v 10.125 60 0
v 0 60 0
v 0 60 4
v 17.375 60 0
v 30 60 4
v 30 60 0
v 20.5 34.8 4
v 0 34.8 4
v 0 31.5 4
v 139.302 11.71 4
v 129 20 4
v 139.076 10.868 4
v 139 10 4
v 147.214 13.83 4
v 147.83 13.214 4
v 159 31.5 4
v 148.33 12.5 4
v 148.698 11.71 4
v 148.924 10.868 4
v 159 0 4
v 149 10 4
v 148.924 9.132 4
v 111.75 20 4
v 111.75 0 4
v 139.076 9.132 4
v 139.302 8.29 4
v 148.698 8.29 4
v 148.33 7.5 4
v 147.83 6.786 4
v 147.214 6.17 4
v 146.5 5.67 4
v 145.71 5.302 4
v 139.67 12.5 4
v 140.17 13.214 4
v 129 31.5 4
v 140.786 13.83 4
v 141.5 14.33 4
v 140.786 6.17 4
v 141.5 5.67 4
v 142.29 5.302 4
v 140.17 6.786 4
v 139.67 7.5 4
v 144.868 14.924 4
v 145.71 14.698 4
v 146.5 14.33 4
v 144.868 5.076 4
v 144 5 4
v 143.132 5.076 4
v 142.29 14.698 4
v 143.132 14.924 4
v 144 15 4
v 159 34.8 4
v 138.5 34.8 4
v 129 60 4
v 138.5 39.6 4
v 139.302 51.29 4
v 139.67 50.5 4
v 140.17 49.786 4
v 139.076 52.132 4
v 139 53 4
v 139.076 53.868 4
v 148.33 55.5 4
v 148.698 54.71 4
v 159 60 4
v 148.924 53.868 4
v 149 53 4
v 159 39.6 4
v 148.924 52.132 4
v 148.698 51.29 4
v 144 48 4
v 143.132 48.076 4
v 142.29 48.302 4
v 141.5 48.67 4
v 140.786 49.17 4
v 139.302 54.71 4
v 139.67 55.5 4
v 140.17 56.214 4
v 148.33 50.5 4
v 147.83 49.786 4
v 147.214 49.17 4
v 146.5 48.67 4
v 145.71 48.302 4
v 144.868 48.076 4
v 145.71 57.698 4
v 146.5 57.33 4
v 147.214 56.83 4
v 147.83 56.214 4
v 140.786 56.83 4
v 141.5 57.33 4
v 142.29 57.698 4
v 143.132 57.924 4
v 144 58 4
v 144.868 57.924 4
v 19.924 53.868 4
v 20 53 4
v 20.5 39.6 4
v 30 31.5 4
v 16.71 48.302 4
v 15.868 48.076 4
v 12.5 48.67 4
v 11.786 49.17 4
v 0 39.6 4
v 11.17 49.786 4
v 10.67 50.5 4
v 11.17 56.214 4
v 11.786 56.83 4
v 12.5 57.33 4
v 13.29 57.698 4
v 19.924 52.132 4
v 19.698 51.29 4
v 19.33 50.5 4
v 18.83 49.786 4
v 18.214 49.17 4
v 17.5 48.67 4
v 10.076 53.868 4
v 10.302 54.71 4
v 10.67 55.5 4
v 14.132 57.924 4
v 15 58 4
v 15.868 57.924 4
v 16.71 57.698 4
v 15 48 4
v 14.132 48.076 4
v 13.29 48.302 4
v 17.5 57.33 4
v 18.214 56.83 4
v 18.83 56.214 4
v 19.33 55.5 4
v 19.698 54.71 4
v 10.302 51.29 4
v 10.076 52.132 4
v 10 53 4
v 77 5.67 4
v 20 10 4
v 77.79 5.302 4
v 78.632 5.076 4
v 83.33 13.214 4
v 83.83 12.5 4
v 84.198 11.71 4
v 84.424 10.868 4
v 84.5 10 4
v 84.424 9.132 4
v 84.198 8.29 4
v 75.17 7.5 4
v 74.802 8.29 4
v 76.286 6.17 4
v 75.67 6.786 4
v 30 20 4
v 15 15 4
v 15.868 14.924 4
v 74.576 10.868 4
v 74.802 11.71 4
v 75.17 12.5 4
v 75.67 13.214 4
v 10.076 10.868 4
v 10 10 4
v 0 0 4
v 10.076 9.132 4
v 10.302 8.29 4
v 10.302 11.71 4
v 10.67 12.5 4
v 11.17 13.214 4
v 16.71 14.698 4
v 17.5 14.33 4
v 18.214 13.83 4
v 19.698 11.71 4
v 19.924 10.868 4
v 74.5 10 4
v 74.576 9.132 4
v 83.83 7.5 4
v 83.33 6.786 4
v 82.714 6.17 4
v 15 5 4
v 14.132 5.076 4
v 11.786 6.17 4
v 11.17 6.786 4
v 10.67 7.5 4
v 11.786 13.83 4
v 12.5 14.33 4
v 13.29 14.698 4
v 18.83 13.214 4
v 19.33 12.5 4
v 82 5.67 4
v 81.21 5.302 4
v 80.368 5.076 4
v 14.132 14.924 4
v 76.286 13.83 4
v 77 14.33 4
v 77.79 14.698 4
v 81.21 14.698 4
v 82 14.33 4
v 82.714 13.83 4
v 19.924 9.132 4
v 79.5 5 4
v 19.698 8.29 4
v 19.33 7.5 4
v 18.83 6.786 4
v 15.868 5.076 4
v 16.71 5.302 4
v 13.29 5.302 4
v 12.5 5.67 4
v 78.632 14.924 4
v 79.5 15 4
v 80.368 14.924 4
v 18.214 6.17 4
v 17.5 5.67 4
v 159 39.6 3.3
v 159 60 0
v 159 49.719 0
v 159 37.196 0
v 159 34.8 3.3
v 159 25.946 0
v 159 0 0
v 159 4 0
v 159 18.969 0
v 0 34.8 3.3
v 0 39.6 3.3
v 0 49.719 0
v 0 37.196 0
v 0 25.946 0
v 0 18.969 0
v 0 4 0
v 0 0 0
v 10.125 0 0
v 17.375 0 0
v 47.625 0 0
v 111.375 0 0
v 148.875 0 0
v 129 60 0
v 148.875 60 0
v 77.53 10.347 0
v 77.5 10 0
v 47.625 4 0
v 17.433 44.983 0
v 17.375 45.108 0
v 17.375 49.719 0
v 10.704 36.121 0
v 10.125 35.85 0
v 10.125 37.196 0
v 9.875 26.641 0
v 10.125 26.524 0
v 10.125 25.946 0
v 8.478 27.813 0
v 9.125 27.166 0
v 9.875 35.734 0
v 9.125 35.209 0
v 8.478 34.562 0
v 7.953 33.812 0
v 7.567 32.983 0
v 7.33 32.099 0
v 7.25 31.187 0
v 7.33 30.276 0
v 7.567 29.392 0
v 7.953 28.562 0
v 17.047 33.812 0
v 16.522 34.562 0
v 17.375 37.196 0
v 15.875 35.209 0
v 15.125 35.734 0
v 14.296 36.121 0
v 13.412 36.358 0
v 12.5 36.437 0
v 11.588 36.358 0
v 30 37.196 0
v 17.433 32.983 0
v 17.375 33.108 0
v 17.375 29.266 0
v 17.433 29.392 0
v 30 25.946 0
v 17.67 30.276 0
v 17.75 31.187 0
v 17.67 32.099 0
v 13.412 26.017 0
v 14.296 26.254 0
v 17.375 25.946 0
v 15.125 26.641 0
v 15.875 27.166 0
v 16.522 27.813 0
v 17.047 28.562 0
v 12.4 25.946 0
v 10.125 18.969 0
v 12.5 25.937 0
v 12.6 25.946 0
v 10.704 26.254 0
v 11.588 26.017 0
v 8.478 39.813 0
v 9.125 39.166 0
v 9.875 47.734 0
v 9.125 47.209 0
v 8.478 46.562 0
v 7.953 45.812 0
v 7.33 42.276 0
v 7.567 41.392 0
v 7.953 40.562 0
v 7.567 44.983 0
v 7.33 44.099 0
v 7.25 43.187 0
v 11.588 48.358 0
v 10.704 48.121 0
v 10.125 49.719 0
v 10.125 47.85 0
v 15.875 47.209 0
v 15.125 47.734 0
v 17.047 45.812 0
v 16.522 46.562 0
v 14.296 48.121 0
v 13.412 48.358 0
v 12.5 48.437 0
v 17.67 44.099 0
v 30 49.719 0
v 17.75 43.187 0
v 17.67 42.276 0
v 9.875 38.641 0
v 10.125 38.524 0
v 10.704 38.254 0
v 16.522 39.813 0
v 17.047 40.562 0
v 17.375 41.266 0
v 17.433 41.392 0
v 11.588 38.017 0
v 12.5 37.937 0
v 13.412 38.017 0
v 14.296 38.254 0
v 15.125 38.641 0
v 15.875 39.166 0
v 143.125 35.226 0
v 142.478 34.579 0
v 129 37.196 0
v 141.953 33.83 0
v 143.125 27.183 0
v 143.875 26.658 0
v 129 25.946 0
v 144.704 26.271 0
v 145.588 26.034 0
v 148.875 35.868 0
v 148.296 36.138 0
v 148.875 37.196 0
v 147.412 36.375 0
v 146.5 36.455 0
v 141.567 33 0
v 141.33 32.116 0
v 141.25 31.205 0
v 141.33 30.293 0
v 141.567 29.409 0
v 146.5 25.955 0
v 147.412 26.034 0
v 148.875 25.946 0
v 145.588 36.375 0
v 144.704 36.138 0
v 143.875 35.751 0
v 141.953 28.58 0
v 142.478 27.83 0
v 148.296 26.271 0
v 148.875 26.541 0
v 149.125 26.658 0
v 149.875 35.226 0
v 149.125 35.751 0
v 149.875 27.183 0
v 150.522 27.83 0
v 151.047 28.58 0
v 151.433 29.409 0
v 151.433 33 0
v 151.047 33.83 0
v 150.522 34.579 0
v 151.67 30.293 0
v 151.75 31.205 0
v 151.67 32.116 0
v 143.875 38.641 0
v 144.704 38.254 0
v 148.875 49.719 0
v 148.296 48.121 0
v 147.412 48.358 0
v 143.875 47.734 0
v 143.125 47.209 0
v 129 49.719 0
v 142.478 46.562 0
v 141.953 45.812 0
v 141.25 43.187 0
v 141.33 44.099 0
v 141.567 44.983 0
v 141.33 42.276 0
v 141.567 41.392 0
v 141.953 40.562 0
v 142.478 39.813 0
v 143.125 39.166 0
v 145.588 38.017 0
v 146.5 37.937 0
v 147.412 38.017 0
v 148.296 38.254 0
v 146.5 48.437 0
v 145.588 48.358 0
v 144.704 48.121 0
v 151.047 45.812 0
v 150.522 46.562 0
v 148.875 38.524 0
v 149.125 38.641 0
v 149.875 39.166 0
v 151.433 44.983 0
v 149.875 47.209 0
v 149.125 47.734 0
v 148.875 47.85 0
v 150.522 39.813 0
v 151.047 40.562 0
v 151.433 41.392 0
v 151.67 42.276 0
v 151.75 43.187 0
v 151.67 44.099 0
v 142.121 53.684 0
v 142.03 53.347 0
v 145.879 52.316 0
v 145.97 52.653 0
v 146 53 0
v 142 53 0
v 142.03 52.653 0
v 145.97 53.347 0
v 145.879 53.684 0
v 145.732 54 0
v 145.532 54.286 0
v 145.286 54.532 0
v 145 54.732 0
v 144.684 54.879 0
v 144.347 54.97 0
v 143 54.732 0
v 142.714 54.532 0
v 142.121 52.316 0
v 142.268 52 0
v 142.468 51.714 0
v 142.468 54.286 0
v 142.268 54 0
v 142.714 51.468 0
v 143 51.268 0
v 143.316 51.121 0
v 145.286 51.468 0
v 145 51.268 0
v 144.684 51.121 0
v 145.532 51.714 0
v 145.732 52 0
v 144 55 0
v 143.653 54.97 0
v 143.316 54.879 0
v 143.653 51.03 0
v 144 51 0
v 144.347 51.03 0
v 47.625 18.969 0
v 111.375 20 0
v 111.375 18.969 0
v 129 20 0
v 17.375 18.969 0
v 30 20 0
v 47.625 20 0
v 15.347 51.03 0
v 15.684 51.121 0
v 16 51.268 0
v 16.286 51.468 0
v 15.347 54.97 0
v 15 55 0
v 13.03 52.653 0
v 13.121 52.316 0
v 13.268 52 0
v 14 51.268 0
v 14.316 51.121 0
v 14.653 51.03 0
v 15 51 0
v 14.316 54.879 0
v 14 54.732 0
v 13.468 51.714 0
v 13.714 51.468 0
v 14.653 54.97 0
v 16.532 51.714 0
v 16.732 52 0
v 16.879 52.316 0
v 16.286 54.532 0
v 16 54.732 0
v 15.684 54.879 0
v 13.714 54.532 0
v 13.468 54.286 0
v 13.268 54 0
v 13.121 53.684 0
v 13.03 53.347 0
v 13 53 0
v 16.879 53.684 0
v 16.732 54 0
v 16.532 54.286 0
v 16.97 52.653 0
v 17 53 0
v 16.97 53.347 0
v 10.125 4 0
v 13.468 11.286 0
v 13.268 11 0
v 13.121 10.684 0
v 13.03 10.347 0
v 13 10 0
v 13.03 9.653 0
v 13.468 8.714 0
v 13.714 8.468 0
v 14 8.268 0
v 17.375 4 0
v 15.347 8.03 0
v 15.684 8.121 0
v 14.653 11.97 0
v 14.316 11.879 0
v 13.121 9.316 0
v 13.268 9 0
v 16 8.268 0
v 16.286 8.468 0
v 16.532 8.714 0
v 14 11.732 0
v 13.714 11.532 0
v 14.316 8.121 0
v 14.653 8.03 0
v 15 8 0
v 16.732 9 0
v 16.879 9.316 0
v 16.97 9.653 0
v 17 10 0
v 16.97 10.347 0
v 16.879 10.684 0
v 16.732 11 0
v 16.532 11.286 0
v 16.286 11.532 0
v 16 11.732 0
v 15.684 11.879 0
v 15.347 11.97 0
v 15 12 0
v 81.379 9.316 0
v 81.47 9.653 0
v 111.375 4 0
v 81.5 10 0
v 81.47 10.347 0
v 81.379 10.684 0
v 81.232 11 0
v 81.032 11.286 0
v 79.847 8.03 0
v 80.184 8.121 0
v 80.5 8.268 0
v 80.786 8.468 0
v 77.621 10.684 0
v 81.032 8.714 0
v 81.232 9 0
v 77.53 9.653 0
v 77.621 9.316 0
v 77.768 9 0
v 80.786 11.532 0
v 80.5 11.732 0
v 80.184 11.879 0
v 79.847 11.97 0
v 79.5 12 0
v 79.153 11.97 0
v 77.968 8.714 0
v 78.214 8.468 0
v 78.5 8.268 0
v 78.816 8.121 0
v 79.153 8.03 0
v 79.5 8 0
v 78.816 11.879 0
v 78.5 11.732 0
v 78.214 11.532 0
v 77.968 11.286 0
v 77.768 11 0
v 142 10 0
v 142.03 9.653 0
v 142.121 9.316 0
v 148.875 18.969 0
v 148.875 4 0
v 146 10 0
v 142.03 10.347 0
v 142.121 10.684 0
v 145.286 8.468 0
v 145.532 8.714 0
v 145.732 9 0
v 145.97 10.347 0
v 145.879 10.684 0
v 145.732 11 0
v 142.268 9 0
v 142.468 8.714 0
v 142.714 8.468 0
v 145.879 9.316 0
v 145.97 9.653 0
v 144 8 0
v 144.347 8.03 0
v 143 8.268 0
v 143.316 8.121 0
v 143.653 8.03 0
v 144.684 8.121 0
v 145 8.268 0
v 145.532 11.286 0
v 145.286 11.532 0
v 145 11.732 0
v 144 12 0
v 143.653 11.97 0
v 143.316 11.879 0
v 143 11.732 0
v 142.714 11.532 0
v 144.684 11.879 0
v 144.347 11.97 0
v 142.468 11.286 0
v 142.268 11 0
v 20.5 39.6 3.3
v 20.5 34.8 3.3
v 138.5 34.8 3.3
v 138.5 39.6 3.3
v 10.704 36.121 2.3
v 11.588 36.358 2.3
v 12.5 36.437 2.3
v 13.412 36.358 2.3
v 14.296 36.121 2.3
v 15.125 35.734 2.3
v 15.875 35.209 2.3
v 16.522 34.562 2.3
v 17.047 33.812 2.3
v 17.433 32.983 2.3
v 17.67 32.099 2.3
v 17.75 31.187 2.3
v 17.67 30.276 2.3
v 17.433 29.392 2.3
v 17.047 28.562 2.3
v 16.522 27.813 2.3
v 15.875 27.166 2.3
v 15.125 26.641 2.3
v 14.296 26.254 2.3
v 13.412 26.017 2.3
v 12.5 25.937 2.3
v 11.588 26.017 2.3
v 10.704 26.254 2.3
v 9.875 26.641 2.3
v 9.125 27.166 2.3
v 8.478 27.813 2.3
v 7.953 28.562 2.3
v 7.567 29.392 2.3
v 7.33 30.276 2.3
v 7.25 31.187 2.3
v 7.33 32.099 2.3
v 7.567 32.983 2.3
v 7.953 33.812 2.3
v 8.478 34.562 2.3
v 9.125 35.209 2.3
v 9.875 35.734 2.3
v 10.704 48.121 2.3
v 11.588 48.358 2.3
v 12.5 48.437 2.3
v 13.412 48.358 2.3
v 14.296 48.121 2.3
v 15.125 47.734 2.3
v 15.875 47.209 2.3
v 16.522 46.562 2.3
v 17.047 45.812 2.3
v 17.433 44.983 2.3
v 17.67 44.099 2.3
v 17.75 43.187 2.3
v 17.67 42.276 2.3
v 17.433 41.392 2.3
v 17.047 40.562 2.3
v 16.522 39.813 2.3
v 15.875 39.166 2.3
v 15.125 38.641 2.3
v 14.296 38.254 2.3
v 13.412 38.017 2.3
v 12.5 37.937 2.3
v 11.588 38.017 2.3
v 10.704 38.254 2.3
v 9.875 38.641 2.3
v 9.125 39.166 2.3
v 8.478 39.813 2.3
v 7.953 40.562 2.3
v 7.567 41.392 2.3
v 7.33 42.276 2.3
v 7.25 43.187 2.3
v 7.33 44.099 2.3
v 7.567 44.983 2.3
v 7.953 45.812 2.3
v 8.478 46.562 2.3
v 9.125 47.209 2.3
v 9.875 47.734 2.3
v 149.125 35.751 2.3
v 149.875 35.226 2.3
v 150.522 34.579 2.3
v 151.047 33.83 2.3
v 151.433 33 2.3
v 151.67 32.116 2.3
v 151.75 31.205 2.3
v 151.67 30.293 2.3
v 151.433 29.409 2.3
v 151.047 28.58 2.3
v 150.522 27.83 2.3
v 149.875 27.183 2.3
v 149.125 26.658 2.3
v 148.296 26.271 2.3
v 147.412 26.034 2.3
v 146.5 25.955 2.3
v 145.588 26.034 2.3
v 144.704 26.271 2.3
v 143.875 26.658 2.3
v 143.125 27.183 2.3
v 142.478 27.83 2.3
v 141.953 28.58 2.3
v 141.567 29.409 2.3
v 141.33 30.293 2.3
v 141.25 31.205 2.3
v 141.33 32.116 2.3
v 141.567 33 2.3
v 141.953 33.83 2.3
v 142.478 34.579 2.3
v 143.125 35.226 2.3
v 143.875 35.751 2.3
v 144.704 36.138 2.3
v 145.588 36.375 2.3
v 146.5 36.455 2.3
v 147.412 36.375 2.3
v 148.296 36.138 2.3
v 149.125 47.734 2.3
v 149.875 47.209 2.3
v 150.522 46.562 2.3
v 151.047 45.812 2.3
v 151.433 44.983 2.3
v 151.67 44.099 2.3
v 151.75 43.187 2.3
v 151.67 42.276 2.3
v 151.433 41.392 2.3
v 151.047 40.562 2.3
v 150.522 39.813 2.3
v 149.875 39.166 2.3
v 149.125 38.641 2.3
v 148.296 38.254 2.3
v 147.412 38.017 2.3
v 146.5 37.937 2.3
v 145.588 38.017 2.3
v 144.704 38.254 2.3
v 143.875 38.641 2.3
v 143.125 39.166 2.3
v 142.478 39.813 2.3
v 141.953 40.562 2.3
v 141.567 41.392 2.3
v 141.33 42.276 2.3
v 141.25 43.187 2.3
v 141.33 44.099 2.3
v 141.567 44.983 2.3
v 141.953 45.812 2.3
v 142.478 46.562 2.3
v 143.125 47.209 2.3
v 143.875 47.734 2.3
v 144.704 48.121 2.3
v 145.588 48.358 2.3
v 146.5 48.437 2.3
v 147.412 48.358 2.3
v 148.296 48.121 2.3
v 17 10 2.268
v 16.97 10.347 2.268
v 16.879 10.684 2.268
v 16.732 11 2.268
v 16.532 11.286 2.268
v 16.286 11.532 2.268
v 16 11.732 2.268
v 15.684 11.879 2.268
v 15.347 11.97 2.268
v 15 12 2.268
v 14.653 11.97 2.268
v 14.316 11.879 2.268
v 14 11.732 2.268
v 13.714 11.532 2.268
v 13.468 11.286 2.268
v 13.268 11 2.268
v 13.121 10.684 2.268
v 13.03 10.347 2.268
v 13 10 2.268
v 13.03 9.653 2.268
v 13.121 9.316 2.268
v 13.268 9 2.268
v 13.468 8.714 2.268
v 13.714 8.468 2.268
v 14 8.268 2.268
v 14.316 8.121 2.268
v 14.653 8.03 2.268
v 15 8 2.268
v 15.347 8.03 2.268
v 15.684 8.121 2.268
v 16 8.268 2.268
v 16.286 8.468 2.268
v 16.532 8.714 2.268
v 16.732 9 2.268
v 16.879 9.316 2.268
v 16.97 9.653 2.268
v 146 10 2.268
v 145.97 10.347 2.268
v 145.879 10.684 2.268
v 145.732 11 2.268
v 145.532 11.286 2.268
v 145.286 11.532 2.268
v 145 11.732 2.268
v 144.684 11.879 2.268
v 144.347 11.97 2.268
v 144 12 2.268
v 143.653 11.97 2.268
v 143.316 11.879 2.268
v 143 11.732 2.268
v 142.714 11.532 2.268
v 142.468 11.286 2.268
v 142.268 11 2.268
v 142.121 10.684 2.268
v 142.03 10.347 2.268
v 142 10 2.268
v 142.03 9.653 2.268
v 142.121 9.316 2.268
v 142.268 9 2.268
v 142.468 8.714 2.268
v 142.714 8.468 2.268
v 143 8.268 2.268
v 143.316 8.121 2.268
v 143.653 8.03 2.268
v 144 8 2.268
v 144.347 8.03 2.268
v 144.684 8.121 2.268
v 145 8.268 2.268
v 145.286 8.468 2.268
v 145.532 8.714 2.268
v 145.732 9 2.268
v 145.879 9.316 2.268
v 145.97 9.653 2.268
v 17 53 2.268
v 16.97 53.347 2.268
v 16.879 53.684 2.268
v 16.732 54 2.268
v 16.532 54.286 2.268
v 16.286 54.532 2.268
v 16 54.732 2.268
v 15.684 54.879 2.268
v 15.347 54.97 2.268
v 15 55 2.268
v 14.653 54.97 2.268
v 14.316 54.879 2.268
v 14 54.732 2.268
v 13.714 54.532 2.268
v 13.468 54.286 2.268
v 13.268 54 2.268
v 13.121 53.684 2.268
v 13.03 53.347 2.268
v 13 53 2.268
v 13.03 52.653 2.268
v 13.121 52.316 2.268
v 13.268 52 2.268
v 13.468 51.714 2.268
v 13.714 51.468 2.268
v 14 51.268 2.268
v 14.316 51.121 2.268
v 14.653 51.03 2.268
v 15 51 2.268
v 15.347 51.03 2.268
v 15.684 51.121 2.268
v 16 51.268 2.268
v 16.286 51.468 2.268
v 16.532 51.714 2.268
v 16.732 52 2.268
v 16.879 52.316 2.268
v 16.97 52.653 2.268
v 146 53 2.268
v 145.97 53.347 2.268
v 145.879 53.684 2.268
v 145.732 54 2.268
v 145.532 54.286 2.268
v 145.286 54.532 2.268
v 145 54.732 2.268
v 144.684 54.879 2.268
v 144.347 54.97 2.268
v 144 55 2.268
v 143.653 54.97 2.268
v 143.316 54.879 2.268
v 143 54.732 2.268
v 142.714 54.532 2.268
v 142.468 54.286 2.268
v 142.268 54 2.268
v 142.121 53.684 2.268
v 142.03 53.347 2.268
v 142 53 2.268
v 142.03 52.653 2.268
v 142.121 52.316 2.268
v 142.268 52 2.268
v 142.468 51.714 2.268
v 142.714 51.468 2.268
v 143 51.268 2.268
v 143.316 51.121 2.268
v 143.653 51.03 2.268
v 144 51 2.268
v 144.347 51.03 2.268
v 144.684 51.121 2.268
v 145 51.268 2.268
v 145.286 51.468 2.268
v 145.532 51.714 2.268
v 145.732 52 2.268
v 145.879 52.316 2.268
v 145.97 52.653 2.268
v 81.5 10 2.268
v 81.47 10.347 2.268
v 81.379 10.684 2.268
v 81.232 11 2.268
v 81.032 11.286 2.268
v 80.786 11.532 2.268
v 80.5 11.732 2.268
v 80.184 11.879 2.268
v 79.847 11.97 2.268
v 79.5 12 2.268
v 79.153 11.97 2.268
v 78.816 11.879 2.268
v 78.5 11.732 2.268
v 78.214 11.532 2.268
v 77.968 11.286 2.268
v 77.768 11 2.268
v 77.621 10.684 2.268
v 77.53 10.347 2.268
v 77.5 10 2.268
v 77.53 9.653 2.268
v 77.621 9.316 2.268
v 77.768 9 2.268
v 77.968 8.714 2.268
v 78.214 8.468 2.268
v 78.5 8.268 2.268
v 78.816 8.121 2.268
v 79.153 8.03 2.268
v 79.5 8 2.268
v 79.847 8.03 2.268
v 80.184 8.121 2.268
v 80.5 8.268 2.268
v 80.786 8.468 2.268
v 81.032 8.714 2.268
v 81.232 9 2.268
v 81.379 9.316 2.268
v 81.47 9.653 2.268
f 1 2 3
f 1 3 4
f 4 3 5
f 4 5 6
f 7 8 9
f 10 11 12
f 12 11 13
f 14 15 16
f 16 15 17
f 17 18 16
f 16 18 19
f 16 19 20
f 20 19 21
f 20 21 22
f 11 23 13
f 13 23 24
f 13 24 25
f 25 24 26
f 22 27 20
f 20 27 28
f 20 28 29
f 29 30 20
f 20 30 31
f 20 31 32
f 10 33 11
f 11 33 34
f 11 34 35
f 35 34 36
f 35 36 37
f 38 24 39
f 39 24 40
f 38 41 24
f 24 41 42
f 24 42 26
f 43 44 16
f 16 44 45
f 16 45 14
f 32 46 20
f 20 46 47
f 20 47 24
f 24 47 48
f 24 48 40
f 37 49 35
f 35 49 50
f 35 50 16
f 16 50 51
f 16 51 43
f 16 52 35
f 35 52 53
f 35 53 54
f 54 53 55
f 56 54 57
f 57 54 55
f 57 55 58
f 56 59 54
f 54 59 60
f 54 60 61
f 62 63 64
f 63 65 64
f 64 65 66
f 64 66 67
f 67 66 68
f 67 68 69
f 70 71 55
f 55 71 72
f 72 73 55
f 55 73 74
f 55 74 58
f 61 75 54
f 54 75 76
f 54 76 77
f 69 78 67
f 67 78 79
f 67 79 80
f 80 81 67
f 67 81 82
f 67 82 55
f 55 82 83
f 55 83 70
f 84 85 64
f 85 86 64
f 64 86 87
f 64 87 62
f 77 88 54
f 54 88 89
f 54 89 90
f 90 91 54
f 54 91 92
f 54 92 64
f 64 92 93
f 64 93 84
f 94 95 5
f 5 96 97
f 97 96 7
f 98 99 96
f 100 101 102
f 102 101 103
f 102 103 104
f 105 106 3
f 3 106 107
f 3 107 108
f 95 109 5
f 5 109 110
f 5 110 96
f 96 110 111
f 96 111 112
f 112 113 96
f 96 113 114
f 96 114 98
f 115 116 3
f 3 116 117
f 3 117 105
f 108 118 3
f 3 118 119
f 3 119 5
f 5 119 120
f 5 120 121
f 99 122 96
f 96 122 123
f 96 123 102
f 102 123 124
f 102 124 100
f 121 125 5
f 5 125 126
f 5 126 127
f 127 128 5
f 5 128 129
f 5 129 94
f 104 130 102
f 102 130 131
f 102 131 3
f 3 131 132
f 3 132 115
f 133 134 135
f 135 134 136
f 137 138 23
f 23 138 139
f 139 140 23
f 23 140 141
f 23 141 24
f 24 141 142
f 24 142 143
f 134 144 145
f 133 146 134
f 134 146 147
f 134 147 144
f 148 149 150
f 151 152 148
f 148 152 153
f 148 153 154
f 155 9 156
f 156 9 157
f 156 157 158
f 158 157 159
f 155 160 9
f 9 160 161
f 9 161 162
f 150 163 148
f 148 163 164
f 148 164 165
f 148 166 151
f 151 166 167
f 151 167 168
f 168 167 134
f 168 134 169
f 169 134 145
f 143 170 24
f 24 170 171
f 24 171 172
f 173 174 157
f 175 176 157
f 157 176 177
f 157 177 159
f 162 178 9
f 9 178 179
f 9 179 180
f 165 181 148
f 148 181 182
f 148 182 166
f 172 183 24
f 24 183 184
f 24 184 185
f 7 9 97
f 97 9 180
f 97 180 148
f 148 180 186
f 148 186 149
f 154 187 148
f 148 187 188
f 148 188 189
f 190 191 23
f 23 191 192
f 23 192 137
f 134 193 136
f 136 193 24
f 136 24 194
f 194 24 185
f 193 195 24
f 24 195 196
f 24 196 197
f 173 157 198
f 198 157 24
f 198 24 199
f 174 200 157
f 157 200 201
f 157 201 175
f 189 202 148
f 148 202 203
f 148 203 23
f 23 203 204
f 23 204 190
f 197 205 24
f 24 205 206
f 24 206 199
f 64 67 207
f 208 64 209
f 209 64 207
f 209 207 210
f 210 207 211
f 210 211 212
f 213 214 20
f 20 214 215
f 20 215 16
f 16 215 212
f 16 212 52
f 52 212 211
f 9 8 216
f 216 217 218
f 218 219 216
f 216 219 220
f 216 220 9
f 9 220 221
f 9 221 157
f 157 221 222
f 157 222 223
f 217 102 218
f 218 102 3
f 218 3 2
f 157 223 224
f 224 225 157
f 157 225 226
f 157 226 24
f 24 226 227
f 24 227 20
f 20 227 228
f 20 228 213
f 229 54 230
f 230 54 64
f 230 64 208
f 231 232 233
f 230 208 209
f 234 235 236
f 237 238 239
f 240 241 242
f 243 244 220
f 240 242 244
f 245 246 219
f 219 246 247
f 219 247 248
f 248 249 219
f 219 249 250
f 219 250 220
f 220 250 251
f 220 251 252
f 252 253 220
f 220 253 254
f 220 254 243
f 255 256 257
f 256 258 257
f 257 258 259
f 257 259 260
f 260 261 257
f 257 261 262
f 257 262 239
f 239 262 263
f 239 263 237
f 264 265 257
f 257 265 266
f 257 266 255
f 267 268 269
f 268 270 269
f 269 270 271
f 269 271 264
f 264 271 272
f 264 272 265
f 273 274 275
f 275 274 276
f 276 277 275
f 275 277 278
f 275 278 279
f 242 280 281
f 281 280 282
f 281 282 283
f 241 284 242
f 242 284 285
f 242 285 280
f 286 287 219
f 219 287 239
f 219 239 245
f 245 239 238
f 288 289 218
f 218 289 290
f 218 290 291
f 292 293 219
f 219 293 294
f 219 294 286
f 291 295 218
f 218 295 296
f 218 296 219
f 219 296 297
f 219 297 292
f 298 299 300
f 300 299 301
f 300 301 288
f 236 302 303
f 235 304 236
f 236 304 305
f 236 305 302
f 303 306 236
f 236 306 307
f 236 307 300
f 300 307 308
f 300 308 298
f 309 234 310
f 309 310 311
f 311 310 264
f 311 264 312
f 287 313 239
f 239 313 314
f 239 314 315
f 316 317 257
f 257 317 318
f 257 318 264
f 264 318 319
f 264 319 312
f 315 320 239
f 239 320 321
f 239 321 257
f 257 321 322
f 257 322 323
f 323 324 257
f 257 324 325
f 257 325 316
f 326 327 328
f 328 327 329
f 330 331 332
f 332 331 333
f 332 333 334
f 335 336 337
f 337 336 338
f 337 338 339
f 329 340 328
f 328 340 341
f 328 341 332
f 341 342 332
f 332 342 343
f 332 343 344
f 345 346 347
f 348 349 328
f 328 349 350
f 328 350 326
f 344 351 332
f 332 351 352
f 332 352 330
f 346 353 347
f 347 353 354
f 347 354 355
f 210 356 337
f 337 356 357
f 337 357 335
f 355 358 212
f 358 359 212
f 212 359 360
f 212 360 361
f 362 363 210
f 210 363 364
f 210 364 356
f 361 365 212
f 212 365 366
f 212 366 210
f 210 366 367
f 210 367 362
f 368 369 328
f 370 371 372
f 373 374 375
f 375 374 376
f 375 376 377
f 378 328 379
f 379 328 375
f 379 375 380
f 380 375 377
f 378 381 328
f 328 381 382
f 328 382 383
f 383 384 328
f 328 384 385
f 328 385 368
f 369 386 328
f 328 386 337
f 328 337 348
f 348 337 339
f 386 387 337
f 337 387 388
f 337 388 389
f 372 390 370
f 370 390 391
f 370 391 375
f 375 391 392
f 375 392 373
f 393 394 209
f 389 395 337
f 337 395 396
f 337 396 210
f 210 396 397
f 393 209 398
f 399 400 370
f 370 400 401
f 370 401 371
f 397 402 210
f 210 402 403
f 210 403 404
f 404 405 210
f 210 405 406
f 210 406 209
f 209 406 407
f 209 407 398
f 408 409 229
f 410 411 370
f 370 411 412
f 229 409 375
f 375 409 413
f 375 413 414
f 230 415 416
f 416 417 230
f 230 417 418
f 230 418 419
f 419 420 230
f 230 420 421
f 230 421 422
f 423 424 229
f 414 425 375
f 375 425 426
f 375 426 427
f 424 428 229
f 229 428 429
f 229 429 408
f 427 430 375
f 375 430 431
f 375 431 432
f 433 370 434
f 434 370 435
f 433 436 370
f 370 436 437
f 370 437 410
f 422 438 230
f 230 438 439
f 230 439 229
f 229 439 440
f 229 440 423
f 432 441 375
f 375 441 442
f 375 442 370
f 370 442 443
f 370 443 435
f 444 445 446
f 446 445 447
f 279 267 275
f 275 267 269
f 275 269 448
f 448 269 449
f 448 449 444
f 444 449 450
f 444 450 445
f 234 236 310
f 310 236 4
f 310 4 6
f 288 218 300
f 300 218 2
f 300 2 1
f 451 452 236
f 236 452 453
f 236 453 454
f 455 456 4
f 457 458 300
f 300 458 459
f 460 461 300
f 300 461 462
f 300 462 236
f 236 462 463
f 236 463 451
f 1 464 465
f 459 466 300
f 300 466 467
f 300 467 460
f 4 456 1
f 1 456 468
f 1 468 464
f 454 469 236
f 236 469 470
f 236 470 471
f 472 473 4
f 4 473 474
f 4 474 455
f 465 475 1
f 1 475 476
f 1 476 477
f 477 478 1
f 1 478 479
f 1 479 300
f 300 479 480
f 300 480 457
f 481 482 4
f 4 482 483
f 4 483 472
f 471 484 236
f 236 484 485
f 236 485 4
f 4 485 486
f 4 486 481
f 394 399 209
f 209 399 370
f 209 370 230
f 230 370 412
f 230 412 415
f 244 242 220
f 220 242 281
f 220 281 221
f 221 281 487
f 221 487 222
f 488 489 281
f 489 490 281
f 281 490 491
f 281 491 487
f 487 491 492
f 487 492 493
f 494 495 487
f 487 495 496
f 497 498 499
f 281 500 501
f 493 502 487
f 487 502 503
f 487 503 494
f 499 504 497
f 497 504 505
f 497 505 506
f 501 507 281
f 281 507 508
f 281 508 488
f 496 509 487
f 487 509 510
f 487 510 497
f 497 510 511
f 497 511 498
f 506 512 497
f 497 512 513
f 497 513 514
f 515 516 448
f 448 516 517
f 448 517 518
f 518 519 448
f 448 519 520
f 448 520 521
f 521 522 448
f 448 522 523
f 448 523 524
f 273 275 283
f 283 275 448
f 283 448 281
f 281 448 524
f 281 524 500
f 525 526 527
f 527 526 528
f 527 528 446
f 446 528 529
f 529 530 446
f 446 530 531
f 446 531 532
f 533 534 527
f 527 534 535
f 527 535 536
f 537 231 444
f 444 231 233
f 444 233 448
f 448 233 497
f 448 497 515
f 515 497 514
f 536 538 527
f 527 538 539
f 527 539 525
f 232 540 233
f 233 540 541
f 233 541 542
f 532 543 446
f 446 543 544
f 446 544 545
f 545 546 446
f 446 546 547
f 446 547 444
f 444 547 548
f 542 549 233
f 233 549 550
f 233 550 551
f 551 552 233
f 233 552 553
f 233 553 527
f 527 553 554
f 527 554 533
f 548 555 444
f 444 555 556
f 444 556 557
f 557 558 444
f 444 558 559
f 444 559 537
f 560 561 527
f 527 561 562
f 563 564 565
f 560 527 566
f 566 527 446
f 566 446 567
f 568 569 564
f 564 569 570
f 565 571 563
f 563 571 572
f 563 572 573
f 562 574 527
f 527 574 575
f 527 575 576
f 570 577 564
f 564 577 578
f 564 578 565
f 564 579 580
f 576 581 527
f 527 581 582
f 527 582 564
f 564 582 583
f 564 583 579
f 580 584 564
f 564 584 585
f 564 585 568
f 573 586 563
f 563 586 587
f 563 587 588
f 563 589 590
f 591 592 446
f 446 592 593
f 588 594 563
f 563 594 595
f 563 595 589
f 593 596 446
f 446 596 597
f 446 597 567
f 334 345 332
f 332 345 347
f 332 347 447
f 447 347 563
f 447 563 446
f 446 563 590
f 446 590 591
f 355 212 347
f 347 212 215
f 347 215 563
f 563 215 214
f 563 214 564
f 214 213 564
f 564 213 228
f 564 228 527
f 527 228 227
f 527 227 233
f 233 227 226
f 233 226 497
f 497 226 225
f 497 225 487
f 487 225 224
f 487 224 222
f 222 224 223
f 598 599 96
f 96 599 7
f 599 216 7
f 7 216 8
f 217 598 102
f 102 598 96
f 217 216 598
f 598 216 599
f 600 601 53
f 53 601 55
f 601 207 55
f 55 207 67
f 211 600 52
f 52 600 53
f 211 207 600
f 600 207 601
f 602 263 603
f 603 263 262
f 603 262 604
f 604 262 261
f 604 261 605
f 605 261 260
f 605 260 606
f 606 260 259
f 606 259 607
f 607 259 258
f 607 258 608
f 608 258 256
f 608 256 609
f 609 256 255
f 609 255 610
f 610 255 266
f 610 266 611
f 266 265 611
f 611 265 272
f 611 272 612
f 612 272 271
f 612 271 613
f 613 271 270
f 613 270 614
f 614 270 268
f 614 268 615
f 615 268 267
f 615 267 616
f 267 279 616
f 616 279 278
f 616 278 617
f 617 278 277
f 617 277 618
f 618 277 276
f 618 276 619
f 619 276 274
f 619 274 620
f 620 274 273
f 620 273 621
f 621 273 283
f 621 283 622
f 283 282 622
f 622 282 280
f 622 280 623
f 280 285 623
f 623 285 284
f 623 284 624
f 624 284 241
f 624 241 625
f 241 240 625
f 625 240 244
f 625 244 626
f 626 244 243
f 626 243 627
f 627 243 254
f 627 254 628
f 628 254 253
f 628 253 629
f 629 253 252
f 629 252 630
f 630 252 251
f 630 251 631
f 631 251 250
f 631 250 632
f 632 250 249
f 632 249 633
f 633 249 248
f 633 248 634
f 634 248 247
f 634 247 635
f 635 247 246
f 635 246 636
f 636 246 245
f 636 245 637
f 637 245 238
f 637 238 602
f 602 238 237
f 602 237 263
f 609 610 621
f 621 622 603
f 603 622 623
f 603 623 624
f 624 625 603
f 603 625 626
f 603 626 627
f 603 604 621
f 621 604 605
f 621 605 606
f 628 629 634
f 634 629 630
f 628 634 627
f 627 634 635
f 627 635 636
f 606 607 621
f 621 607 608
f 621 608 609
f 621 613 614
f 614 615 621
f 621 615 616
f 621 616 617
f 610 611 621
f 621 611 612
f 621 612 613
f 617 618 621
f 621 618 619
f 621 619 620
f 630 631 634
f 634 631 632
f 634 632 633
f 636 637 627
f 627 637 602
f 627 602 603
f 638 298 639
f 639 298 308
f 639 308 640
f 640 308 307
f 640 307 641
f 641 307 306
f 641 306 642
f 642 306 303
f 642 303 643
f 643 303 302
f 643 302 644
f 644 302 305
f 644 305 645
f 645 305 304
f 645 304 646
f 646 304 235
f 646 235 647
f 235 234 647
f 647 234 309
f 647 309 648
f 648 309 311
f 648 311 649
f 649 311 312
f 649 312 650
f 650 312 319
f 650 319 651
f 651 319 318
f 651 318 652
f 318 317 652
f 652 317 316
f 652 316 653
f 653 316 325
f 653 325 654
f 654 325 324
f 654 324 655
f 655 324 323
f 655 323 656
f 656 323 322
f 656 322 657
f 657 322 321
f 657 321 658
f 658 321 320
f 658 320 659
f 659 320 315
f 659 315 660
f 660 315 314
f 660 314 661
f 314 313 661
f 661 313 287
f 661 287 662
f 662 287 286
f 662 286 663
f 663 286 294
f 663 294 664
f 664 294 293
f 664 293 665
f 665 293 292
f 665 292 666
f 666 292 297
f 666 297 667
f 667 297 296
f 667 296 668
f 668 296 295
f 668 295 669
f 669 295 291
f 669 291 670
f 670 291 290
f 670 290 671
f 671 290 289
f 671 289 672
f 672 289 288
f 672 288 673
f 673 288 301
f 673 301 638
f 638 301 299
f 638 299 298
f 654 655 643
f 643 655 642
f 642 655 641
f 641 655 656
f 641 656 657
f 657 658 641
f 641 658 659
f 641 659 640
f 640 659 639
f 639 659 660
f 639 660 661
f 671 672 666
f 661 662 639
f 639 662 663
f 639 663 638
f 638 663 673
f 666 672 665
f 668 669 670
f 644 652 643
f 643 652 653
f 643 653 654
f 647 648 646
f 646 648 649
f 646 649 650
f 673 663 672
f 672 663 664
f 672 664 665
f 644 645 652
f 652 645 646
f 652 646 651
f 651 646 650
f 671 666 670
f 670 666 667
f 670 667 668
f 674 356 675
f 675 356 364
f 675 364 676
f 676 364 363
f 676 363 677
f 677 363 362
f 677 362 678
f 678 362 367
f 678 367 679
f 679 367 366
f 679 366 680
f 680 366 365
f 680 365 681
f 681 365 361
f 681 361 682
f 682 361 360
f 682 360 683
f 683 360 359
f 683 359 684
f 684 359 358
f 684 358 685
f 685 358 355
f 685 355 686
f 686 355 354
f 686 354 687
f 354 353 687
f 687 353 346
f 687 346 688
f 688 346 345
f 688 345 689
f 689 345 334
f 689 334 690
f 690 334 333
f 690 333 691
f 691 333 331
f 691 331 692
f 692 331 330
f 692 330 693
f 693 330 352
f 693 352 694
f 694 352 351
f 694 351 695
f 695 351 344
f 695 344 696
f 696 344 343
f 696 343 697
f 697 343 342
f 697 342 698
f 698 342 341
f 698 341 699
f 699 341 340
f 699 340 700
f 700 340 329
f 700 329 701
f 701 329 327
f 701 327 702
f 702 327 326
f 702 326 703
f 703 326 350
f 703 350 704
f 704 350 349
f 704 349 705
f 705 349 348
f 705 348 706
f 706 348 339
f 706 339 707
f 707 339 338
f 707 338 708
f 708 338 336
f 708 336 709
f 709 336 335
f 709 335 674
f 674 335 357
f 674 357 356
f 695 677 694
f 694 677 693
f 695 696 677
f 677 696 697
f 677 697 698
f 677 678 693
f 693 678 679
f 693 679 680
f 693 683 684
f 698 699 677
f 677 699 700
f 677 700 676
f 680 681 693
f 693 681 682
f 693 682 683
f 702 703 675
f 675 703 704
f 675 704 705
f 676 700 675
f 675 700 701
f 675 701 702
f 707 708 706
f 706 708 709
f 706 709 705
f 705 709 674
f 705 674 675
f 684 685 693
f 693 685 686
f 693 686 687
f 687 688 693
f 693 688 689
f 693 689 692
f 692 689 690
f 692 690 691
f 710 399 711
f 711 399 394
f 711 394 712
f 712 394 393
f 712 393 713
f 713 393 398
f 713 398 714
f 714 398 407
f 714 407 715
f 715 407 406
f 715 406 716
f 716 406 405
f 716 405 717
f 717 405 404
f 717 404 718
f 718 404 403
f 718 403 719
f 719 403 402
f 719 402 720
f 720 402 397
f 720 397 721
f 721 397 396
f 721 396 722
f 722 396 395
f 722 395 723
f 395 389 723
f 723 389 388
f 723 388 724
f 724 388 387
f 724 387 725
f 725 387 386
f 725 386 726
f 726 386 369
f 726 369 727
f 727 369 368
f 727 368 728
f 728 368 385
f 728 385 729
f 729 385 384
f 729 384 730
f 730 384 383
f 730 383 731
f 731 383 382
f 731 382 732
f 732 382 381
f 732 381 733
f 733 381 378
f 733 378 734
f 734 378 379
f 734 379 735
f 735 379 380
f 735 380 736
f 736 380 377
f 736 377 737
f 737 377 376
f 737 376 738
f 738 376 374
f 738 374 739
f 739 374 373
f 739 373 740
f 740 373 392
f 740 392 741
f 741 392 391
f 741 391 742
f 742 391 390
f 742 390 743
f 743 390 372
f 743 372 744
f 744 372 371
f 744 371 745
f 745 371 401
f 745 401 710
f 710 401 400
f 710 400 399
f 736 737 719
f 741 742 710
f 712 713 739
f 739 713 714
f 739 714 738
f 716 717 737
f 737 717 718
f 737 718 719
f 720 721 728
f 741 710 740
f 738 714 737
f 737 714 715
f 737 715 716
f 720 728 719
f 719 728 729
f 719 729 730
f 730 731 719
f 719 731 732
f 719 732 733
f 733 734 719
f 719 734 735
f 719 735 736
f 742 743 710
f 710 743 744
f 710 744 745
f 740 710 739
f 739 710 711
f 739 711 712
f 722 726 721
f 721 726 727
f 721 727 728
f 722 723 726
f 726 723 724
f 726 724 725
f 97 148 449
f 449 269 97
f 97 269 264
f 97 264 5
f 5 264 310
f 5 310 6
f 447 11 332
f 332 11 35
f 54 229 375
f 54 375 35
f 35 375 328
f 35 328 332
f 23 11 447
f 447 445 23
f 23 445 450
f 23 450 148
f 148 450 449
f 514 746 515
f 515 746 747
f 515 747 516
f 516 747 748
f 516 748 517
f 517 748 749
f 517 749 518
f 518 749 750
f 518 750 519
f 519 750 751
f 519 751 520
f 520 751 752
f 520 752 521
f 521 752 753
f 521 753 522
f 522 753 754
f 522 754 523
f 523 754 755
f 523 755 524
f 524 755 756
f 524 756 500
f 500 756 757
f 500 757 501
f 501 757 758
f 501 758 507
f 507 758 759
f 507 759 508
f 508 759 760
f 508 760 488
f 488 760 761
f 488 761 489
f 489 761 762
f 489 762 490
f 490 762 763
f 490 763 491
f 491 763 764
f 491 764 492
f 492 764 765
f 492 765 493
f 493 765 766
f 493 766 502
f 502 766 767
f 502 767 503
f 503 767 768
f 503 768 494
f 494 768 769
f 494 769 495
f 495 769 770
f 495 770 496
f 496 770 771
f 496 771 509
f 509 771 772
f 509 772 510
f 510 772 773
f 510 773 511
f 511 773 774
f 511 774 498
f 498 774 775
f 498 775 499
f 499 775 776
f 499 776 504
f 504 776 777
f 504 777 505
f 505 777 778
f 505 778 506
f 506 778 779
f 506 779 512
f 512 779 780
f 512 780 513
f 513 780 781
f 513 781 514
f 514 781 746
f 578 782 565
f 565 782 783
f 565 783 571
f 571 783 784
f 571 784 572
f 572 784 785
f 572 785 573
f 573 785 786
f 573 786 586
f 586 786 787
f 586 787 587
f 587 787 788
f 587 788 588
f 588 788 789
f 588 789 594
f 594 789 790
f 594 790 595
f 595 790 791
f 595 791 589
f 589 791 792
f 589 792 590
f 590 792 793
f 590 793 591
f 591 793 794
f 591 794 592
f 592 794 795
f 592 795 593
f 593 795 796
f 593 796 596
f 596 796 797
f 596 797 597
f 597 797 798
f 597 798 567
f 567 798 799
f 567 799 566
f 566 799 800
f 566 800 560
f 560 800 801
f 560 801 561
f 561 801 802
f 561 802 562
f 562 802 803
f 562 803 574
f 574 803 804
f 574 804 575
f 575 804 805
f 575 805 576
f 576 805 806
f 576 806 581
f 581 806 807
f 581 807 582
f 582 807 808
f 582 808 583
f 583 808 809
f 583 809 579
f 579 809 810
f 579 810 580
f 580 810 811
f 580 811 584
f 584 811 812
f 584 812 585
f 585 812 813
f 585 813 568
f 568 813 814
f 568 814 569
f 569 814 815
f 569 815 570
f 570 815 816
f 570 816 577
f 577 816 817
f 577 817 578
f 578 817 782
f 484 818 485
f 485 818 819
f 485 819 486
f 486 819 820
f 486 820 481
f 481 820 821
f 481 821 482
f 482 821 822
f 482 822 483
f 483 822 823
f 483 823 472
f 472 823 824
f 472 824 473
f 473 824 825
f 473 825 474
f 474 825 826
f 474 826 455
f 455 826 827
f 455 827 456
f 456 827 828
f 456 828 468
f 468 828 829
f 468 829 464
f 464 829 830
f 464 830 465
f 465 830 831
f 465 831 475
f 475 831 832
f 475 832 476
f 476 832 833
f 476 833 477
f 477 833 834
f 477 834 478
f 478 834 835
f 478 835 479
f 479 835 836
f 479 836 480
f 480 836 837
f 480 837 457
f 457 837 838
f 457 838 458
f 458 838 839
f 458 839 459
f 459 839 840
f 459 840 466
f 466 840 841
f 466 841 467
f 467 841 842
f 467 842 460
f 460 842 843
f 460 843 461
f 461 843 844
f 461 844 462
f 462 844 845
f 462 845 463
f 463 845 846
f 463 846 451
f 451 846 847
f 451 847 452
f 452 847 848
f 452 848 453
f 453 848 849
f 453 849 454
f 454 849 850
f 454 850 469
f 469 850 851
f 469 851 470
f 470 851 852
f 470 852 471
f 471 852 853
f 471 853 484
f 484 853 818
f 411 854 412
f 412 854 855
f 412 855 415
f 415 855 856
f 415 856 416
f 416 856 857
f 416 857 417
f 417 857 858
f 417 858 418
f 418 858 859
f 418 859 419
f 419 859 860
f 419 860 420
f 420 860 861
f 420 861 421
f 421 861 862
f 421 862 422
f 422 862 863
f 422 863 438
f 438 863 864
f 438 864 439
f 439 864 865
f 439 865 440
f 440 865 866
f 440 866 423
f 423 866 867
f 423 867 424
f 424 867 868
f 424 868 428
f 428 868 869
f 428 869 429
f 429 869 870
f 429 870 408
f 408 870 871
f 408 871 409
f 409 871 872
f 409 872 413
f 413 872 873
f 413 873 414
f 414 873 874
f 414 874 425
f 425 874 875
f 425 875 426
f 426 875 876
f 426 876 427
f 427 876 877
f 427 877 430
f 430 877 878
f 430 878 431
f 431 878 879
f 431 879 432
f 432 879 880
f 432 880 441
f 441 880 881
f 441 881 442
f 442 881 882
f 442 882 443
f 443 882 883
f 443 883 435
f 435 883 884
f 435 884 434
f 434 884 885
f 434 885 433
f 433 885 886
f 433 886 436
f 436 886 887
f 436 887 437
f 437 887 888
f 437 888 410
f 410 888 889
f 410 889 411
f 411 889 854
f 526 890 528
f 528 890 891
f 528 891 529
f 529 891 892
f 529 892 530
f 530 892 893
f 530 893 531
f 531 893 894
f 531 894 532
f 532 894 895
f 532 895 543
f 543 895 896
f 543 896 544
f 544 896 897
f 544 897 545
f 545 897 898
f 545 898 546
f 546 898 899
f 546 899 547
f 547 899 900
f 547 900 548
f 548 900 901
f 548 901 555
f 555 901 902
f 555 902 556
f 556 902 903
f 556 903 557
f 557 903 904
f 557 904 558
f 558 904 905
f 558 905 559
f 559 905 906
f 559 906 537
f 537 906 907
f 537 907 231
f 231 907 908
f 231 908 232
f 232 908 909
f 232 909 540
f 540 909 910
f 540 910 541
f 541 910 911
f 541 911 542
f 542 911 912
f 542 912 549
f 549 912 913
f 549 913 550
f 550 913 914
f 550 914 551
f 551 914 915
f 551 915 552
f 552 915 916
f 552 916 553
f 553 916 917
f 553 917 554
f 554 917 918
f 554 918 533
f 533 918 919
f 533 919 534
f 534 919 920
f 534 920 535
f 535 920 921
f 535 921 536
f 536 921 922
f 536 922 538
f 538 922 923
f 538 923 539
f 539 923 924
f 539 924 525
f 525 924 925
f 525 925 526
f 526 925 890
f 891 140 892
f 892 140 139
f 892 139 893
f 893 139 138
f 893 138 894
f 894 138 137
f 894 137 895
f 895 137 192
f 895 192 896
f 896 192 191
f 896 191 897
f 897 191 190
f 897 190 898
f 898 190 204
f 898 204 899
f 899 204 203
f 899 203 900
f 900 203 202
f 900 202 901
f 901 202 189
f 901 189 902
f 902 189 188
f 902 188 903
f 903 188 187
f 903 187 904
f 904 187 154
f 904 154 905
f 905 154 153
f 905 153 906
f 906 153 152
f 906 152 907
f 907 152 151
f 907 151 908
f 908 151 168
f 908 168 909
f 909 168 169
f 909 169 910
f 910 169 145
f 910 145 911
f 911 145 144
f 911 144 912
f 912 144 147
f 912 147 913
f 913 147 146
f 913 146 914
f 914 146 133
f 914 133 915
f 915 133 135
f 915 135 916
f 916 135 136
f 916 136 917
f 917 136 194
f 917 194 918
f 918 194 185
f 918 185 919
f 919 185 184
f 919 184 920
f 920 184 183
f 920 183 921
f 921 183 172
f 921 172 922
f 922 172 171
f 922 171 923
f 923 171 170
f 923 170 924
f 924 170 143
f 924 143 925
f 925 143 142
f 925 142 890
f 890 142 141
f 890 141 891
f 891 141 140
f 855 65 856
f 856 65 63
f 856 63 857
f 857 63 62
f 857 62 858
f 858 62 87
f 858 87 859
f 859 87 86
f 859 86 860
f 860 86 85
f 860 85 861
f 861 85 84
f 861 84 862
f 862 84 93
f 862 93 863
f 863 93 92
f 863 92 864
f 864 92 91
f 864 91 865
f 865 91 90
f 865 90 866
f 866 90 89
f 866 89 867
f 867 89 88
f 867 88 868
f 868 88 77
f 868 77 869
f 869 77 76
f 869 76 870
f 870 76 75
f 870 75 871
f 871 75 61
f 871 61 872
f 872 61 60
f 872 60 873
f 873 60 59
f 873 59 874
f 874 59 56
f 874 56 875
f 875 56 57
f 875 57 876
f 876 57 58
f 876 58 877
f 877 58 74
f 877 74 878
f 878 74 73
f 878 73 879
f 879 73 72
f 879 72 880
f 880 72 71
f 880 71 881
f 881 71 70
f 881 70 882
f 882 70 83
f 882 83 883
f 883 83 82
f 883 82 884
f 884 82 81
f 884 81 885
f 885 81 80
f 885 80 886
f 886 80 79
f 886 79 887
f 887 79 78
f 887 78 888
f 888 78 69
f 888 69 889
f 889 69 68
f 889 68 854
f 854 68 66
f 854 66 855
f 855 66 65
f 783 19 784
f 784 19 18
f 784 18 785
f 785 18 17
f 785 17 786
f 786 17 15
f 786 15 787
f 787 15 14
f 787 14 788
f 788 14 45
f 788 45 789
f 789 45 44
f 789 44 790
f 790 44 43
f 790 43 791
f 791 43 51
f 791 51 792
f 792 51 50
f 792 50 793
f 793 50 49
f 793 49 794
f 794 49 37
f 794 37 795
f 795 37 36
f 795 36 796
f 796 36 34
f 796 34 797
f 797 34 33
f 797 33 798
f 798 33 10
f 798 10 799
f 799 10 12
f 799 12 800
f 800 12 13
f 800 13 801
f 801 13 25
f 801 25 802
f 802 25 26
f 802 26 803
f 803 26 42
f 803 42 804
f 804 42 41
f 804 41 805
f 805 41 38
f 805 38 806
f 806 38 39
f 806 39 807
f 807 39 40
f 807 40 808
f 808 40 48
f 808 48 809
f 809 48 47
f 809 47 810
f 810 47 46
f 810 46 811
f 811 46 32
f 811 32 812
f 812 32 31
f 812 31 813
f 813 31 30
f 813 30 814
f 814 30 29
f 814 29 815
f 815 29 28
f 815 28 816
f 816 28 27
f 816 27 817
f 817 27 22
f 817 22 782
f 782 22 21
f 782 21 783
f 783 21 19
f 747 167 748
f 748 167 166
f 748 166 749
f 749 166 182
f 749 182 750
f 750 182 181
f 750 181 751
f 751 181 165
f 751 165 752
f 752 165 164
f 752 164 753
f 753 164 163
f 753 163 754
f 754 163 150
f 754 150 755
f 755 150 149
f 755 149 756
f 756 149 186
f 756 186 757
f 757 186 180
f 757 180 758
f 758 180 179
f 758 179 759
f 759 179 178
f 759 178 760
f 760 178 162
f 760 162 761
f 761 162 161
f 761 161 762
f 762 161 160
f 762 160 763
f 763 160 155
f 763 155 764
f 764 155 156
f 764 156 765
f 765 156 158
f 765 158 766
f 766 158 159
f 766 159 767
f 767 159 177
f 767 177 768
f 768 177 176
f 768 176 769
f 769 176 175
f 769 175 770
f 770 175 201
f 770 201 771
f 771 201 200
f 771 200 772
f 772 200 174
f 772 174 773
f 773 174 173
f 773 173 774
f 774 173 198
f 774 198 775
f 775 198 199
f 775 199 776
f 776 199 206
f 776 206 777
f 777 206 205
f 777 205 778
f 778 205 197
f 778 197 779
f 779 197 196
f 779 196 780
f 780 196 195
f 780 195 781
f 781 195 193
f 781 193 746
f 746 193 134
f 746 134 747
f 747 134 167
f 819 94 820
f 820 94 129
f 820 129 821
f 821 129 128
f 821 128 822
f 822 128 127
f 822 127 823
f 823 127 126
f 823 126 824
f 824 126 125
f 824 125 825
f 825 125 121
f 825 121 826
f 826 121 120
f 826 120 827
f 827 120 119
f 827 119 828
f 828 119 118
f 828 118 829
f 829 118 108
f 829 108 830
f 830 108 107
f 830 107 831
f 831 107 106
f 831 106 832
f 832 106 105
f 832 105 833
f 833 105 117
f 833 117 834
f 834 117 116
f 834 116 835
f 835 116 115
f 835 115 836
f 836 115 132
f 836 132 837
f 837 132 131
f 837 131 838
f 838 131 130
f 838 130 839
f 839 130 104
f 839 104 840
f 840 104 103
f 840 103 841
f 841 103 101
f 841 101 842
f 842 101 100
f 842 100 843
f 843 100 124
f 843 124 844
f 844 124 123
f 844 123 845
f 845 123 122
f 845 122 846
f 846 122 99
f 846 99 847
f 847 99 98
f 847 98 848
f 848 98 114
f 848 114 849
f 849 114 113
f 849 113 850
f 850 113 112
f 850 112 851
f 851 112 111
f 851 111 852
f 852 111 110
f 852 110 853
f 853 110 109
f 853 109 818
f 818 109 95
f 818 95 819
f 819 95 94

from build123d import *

# Parameters (mm, degrees)
ESQUISSE1_W             = 159
ESQUISSE1_H             = 60
BOSS_EXTRU_1_DEPTH      = 4
ENL_V_START             = -4
ESQUISSE2_W             = 20.5
ESQUISSE2_H             = 4.8
ENL_V_MAT_EXTRU_1_DEPTH = 0.7
ESQUISSE3_R             = 5.25
ENL_V_MAT_EXTRU_2_DEPTH = 2.3
ESQUISSE4_W             = 99
ESQUISSE4_H             = 40
ENL_V_MAT_EXTRU_3_DEPTH = 4
ESQUISSE5_R             = 2
ENL_V_MAT_EXTRU_4_DEPTH = 4
CHANFREIN1_SIZE         = 3
CHANFREIN1_SIZE2        = 1.732050808


with BuildPart() as part:
    # Esquisse1 → Boss.-Extru.1 (new body)
    with BuildSketch(Plane.XY):
        with Locations((79.5, 30)):
            Rectangle(ESQUISSE1_W, ESQUISSE1_H)
    extrude(amount=BOSS_EXTRU_1_DEPTH)

    # Esquisse2 → Enlèv. mat.-Extru.1 (cut)
    with BuildSketch(Plane(origin=(0, 0, 0), x_dir=(-1, 0, 0), z_dir=(0, 0, -1)).offset(ENL_V_START)):
        with Locations((-10.25, 37.2)):
            Rectangle(ESQUISSE2_W, ESQUISSE2_H)
        with Locations((-148.75, 37.2)):
            Rectangle(ESQUISSE2_W, ESQUISSE2_H)
    extrude(amount=ENL_V_MAT_EXTRU_1_DEPTH, mode=Mode.SUBTRACT)

    # Esquisse3 → Enlèv. mat.-Extru.2 (cut)
    with BuildSketch(Plane(origin=(0, 0, 0), x_dir=(-1, 0, 0), z_dir=(0, 0, -1))):
        with Locations((-12.5, 31.187269084)):
            Circle(ESQUISSE3_R)
        with Locations((-12.5, 43.187269084)):
            Circle(ESQUISSE3_R)
        with Locations((-146.5, 31.204694992)):
            Circle(ESQUISSE3_R)
        with Locations((-146.5, 43.187269084)):
            Circle(ESQUISSE3_R)
    extrude(amount=-ENL_V_MAT_EXTRU_2_DEPTH, mode=Mode.SUBTRACT)

    # Esquisse4 → Enlèv. mat.-Extru.3 (cut)
    with BuildSketch(Plane.XY.offset(4)):
        with Locations((79.5, 40)):
            Rectangle(ESQUISSE4_W, ESQUISSE4_H)
    extrude(amount=-ENL_V_MAT_EXTRU_3_DEPTH, mode=Mode.SUBTRACT)

    # Esquisse5 → Enlèv. mat.-Extru.4 (cut)
    with BuildSketch(Plane.XY.offset(4)):
        with Locations((15, 10)):
            Circle(ESQUISSE5_R)
        with Locations((144, 10)):
            Circle(ESQUISSE5_R)
        with Locations((15, 53)):
            Circle(ESQUISSE5_R)
        with Locations((144, 53)):
            Circle(ESQUISSE5_R)
        with Locations((79.5, 10)):
            Circle(ESQUISSE5_R)
    extrude(amount=-ENL_V_MAT_EXTRU_4_DEPTH, mode=Mode.SUBTRACT)

    # Chanfrein1
    chanfrein1_edges = [part.edges().sort_by_distance(p)[0] for p in [
        (13, 10, 4),
        (142, 10, 4),
        (13, 53, 4),
        (142, 53, 4),
        (77.5, 10, 4),
    ]]
    chanfrein1_side = [part.faces().sort_by_distance(p)[0] for p in [
        (10.25, 33.100558915, 4),
    ]]
    chamfer(chanfrein1_edges, length=CHANFREIN1_SIZE, length2=CHANFREIN1_SIZE2, reference=chanfrein1_side[0])


solid = part.part
